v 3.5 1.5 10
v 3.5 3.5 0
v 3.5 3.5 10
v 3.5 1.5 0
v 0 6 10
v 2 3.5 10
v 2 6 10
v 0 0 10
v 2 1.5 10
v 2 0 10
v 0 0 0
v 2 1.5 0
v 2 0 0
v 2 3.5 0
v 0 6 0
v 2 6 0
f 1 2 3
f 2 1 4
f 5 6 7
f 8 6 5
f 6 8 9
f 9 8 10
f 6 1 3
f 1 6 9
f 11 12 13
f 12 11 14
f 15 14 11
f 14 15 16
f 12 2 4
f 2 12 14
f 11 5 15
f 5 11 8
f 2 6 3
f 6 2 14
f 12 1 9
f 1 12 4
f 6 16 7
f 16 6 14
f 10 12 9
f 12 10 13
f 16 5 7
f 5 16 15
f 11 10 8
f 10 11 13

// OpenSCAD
translate([0,1.5,0])cube(size=[3.5, 2, 10]);
translate([0,0,0])cube(size=[2, 6, 10]);
